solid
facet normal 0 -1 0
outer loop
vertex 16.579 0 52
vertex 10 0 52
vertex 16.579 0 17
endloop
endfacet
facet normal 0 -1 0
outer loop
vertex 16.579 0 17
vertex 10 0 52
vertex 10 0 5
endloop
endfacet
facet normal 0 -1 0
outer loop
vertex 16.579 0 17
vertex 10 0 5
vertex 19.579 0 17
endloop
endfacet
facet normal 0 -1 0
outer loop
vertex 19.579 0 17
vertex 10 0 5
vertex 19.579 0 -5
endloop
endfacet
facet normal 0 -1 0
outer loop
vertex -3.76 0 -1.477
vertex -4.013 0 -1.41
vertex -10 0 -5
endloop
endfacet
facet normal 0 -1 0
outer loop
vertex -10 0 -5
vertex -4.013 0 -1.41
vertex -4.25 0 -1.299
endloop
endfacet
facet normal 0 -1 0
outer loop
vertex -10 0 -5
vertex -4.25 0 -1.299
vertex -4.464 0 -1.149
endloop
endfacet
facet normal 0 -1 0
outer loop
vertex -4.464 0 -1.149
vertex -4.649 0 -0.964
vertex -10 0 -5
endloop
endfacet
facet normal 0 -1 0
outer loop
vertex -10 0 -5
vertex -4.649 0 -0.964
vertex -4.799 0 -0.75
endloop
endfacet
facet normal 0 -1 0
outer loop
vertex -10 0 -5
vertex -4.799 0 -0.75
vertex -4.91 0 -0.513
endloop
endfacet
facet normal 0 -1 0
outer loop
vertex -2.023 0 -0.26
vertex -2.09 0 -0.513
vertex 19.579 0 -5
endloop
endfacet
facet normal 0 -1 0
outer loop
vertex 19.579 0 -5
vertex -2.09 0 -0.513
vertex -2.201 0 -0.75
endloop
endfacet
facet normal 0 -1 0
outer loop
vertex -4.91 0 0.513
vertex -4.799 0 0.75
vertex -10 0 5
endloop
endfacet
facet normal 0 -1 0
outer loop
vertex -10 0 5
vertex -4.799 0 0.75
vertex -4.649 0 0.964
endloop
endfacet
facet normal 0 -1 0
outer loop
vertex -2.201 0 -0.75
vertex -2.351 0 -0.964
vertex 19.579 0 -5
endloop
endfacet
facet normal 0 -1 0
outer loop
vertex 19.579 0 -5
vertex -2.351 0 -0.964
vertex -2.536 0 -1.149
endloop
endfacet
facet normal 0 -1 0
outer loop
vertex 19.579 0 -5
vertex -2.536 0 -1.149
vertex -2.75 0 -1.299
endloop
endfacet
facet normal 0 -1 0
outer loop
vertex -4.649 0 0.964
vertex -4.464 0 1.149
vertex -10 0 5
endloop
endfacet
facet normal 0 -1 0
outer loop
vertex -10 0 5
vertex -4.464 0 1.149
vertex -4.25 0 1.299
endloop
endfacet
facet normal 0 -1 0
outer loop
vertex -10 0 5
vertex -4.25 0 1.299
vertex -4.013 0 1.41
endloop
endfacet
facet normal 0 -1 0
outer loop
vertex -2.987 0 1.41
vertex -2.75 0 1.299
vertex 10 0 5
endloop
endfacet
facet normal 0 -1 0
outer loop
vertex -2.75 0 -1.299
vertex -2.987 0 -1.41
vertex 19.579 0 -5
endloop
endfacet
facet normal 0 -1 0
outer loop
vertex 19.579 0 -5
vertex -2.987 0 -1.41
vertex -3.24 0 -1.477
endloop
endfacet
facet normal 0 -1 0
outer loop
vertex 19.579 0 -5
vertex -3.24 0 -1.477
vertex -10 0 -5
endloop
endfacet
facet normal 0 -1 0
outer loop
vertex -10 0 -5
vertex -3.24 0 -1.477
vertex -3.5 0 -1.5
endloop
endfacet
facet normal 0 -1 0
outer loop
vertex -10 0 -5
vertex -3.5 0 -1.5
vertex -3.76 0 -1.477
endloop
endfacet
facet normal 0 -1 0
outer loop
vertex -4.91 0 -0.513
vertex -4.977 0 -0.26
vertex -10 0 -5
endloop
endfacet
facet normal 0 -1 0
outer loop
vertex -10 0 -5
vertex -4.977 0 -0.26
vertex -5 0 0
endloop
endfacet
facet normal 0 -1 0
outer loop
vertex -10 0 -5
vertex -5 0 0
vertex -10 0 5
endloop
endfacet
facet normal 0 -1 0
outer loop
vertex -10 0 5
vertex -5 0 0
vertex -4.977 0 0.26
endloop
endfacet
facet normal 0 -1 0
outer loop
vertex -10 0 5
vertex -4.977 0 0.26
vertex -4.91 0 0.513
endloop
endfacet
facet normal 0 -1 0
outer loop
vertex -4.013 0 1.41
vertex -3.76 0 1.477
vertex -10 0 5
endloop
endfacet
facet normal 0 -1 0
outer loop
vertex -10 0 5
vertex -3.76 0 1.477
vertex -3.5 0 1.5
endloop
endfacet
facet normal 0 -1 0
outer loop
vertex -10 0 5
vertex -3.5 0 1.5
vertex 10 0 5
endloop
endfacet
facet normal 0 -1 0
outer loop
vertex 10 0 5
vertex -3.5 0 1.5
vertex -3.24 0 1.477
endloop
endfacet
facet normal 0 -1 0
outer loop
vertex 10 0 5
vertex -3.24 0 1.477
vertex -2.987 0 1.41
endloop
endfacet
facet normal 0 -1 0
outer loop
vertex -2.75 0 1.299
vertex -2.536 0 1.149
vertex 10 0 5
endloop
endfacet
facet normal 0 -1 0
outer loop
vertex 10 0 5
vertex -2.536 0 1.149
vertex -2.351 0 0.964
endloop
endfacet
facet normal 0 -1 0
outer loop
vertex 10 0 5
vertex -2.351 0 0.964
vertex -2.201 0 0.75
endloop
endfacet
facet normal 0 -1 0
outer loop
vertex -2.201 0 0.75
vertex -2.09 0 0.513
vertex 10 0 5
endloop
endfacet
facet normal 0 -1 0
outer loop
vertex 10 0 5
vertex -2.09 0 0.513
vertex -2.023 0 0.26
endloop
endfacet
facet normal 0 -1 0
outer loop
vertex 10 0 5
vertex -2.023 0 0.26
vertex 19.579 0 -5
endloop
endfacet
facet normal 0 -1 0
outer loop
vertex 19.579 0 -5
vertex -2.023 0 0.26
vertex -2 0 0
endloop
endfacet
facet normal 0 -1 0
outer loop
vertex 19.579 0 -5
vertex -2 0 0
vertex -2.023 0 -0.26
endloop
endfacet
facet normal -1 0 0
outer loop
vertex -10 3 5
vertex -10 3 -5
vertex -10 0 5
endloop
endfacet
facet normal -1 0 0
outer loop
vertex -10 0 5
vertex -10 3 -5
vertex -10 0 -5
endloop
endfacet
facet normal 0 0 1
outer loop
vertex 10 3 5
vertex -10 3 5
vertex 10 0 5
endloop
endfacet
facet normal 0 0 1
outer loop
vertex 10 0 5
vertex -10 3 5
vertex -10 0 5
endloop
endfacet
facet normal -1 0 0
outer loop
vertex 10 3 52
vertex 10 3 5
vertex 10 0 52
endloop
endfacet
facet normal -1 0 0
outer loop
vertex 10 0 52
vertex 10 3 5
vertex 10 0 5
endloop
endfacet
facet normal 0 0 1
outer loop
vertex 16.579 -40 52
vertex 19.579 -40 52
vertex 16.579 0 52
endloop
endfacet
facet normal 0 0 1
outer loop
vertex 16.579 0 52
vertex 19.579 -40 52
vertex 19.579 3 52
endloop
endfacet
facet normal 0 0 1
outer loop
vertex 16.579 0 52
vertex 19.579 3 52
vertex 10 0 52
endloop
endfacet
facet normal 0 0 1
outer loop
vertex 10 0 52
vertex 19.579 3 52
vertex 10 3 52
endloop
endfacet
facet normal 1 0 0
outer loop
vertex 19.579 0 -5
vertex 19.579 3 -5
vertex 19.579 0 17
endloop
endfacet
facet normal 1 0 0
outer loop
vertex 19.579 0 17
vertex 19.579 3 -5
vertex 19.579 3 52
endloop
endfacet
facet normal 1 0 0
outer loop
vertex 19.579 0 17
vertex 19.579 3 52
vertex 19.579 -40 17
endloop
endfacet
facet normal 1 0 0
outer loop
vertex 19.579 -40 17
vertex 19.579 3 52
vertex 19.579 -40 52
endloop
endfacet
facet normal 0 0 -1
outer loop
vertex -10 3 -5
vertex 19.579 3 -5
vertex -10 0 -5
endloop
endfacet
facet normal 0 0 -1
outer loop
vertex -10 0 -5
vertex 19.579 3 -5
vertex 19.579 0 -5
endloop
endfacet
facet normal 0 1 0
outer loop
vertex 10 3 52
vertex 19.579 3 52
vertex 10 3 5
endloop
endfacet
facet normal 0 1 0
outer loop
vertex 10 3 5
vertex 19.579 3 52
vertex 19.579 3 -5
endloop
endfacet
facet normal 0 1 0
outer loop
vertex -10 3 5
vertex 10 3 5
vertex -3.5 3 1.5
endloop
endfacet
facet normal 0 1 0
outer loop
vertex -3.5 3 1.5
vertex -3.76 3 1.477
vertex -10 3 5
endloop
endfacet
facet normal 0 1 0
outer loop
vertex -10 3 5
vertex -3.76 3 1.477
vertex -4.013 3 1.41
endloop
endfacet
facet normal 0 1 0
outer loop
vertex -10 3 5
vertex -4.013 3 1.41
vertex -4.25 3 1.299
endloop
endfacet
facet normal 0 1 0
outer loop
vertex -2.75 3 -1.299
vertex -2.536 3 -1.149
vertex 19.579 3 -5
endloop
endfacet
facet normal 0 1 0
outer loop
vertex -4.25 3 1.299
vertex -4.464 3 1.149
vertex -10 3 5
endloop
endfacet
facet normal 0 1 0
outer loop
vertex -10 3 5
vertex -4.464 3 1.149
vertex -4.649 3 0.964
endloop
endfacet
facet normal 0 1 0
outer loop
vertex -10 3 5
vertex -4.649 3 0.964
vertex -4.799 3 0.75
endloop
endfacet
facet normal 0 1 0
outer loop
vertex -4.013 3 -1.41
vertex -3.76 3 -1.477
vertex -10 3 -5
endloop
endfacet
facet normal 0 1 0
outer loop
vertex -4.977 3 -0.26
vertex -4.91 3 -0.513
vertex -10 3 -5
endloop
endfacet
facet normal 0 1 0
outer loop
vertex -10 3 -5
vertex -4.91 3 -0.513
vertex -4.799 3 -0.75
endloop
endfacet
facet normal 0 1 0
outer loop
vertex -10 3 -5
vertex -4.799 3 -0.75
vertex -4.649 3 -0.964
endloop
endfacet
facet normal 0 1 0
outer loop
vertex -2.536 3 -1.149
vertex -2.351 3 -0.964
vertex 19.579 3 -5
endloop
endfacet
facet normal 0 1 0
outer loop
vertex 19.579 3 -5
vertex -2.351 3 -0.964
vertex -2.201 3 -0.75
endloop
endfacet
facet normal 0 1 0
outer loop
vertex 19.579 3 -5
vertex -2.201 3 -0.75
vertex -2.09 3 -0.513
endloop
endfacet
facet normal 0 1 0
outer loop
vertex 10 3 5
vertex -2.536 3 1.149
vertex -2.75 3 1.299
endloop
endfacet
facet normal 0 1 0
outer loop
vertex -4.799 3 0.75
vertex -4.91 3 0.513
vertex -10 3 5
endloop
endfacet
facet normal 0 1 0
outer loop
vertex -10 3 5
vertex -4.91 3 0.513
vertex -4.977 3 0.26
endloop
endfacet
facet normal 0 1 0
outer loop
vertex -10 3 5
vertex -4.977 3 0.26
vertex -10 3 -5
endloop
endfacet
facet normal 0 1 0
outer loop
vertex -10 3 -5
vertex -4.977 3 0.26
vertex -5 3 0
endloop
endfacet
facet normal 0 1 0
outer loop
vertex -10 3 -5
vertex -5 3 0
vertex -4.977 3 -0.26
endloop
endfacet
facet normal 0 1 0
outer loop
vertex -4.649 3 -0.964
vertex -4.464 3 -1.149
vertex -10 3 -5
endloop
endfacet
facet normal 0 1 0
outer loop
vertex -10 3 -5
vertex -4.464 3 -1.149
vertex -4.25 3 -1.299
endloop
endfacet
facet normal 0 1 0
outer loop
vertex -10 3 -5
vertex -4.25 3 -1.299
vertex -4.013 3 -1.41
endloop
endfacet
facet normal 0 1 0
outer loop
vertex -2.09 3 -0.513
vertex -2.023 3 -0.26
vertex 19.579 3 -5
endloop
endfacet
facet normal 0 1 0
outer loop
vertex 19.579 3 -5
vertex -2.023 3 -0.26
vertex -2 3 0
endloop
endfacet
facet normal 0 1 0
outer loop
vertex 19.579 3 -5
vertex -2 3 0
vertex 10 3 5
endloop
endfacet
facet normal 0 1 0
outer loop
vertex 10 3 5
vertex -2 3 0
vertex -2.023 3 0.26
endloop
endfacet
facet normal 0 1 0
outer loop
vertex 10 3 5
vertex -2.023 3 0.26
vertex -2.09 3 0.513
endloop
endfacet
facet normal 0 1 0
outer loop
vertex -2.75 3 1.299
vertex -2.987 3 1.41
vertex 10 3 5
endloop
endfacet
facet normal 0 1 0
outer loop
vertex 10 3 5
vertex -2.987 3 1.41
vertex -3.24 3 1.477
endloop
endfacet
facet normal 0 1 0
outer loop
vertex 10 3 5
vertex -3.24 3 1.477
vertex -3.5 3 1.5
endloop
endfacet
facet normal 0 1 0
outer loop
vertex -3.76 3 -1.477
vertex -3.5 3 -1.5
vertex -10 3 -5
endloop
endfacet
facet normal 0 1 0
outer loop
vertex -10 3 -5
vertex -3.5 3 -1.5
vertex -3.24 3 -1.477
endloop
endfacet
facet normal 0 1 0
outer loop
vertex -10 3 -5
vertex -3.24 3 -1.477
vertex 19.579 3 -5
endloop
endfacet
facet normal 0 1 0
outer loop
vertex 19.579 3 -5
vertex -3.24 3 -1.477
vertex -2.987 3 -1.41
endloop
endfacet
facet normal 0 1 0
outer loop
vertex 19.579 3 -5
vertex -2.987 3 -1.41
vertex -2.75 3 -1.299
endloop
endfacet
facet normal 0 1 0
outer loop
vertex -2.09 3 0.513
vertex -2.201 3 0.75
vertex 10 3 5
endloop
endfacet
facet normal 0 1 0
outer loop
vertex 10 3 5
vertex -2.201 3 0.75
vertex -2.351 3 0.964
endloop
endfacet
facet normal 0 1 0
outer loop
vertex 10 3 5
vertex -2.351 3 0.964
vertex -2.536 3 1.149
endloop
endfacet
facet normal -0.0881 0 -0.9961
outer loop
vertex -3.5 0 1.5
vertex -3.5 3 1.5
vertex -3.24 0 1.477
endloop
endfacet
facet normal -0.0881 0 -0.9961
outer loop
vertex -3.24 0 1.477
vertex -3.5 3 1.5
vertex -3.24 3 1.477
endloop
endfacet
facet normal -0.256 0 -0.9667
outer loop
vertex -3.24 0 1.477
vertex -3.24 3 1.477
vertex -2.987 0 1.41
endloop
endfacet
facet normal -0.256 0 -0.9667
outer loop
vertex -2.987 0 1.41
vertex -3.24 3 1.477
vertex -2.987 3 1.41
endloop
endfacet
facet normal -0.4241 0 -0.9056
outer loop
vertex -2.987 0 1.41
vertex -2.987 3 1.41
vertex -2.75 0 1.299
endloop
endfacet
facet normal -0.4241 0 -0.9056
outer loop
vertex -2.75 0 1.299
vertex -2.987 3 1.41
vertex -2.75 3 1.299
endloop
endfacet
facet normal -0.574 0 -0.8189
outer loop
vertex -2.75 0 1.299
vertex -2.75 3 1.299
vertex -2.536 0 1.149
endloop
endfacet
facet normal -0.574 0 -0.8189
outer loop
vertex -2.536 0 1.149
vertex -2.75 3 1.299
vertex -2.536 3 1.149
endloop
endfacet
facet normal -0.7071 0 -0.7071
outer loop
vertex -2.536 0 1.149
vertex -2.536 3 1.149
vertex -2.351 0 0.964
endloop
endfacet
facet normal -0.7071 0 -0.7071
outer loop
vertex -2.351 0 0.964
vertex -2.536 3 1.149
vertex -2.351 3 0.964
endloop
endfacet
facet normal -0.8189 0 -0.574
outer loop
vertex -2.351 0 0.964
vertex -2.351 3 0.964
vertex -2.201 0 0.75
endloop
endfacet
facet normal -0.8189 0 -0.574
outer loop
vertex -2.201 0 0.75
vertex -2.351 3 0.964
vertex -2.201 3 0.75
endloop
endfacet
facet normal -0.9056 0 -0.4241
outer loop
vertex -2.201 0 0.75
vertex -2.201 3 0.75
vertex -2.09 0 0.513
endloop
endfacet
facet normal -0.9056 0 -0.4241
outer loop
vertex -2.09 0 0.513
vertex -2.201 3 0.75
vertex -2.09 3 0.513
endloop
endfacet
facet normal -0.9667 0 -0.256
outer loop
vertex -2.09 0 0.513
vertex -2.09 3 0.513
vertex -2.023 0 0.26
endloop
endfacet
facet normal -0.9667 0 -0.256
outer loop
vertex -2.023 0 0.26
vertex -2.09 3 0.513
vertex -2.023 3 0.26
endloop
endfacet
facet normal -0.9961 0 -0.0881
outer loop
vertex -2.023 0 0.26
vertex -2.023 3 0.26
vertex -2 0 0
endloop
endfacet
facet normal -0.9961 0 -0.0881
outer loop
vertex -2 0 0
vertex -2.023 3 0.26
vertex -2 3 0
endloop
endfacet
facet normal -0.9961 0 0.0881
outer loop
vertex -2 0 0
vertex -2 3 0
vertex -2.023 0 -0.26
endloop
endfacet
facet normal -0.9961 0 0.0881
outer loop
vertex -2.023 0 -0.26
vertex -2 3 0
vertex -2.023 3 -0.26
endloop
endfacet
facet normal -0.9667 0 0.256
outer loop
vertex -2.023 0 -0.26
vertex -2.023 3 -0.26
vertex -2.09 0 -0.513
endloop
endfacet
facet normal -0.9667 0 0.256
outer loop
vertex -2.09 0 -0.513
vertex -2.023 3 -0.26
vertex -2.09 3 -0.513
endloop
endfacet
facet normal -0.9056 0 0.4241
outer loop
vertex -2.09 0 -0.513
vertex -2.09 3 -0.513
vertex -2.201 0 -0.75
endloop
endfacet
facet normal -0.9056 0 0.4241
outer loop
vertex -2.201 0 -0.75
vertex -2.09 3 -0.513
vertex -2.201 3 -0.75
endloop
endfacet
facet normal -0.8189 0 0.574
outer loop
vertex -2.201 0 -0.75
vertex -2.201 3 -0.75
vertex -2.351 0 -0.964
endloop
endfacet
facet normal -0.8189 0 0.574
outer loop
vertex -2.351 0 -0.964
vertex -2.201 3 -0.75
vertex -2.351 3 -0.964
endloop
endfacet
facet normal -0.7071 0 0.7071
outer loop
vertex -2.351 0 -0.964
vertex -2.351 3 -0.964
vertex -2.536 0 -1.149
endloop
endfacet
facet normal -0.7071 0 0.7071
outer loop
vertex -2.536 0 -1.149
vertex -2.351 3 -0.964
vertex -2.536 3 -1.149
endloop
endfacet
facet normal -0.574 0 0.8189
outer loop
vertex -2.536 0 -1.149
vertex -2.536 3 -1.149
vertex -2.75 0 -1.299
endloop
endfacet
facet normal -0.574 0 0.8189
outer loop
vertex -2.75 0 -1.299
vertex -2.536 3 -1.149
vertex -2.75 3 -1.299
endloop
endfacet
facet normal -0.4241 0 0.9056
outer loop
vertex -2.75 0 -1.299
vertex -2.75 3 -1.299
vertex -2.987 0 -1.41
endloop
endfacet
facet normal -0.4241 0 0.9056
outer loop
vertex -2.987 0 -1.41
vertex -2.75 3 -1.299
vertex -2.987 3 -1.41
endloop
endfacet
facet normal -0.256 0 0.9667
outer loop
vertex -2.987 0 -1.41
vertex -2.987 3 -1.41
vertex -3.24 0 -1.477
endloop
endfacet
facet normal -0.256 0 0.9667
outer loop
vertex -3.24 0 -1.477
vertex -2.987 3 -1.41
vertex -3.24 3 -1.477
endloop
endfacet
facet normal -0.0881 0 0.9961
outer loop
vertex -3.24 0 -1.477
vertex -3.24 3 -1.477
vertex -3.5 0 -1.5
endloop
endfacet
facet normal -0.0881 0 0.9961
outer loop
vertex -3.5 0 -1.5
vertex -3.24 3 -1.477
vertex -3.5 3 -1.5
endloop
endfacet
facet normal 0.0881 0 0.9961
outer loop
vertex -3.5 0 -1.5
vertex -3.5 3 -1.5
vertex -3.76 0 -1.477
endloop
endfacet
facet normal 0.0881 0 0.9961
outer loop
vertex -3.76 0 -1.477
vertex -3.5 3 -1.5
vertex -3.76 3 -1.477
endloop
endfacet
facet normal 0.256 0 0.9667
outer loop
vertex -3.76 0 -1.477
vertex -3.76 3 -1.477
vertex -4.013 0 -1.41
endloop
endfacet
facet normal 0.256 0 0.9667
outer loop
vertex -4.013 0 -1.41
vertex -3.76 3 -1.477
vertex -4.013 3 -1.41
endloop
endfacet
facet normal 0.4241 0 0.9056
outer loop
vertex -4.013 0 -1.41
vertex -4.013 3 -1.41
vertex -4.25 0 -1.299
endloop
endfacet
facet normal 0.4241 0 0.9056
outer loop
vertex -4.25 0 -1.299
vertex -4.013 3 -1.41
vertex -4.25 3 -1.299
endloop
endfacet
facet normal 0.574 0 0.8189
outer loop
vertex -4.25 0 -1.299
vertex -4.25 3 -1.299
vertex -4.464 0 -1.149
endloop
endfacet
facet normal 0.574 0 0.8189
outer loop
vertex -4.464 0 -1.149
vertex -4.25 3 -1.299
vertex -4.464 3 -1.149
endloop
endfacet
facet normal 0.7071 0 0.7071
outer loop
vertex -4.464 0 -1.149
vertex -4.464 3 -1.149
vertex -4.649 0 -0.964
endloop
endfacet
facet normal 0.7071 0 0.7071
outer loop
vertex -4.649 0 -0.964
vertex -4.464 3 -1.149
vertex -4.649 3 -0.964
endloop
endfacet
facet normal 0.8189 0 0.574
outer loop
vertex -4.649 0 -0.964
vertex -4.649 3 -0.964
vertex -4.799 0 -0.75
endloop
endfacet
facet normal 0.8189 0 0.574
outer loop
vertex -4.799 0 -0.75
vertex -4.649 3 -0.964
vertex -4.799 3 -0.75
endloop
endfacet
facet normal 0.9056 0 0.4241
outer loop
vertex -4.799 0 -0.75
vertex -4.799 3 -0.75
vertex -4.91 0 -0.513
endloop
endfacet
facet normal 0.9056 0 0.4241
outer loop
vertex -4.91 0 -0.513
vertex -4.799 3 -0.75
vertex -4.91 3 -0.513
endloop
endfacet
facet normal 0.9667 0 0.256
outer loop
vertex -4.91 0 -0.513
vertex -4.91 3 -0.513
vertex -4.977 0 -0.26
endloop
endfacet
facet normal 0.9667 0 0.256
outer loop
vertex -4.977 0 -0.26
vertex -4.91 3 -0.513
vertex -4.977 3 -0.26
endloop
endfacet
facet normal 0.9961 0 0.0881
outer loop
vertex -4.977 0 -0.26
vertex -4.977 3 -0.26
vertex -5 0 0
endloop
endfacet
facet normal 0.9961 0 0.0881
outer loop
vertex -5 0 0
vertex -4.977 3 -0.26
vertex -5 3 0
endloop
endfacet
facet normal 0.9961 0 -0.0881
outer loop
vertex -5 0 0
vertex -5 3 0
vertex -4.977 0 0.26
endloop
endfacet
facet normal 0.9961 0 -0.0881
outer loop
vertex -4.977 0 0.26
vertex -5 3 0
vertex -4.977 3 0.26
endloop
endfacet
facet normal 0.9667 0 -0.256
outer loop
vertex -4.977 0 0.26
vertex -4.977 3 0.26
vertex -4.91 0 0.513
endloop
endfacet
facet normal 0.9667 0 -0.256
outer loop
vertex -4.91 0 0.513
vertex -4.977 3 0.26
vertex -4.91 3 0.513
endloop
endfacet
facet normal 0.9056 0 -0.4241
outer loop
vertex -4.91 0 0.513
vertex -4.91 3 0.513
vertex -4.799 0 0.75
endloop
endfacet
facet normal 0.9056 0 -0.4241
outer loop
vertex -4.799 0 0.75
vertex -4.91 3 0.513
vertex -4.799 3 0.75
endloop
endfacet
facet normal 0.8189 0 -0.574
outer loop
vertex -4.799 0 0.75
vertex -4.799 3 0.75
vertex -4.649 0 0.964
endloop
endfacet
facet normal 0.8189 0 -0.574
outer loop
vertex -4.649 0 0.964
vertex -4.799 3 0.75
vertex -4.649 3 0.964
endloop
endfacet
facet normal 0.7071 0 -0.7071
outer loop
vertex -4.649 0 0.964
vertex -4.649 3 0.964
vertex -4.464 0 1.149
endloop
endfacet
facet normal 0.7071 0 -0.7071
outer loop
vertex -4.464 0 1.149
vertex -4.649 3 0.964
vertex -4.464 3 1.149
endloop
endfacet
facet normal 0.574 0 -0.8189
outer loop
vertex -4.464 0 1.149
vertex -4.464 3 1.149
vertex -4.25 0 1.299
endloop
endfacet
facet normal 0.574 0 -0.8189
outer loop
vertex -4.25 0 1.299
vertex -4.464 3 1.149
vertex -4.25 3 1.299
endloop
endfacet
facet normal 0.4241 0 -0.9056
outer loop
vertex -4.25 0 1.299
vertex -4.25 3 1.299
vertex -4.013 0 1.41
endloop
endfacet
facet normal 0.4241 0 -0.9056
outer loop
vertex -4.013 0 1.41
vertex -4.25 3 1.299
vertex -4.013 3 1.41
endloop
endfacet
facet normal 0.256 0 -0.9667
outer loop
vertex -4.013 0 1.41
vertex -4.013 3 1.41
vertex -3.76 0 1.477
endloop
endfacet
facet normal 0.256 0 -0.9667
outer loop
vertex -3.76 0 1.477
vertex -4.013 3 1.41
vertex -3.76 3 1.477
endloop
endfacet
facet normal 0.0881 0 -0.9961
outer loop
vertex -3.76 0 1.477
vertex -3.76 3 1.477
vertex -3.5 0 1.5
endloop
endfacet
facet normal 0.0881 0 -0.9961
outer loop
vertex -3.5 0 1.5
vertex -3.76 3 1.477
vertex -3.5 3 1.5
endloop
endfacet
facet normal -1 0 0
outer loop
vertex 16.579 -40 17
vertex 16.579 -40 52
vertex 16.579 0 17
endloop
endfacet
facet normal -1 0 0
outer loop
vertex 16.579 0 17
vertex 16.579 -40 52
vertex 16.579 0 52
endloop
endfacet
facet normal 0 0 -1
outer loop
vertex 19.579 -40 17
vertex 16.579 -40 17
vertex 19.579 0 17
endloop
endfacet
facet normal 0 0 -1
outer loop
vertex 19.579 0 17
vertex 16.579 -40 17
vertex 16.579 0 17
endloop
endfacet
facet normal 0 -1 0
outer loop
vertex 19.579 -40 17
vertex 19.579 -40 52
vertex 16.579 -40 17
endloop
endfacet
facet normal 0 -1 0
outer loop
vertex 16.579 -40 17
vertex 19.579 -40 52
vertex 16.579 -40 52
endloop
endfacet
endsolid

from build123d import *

# Parameters (mm, degrees)
BOSS_EXTRUDE1_DEPTH = 3
SKETCH2_R           = 1.5
CUT_EXTRUDE1_DEPTH  = 3
SKETCH3_W           = 3
SKETCH3_H           = 35
BOSS_EXTRUDE2_DEPTH = 40


with BuildPart() as part:
    # Sketch1 → Boss-Extrude1 (new body)
    with BuildSketch(Plane(origin=(0, 0, 0), x_dir=(1, 0, 0), z_dir=(0, 1, 0))):
        Polygon((10, -5), (10, -52), (19.57850172, -52), (19.57850172, 5), (10, 5), (-10, 5), (-10, -5), align=None)
    extrude(amount=BOSS_EXTRUDE1_DEPTH)

    # Sketch2 → Cut-Extrude1 (cut)
    with BuildSketch(Plane(origin=(0, 3, 0), x_dir=(1, 0, 0), z_dir=(0, 1, 0))):
        with Locations(Location((-3.5, 0, 0), (0, 0, 270))):
            Circle(SKETCH2_R)
    extrude(amount=-CUT_EXTRUDE1_DEPTH, mode=Mode.SUBTRACT)

    # Sketch3 → Boss-Extrude2 (add)
    with BuildSketch(Plane.XZ):
        with Locations((18.07850172, 34.5)):
            Rectangle(SKETCH3_W, SKETCH3_H)
    extrude(amount=BOSS_EXTRUDE2_DEPTH)


solid = part.part
